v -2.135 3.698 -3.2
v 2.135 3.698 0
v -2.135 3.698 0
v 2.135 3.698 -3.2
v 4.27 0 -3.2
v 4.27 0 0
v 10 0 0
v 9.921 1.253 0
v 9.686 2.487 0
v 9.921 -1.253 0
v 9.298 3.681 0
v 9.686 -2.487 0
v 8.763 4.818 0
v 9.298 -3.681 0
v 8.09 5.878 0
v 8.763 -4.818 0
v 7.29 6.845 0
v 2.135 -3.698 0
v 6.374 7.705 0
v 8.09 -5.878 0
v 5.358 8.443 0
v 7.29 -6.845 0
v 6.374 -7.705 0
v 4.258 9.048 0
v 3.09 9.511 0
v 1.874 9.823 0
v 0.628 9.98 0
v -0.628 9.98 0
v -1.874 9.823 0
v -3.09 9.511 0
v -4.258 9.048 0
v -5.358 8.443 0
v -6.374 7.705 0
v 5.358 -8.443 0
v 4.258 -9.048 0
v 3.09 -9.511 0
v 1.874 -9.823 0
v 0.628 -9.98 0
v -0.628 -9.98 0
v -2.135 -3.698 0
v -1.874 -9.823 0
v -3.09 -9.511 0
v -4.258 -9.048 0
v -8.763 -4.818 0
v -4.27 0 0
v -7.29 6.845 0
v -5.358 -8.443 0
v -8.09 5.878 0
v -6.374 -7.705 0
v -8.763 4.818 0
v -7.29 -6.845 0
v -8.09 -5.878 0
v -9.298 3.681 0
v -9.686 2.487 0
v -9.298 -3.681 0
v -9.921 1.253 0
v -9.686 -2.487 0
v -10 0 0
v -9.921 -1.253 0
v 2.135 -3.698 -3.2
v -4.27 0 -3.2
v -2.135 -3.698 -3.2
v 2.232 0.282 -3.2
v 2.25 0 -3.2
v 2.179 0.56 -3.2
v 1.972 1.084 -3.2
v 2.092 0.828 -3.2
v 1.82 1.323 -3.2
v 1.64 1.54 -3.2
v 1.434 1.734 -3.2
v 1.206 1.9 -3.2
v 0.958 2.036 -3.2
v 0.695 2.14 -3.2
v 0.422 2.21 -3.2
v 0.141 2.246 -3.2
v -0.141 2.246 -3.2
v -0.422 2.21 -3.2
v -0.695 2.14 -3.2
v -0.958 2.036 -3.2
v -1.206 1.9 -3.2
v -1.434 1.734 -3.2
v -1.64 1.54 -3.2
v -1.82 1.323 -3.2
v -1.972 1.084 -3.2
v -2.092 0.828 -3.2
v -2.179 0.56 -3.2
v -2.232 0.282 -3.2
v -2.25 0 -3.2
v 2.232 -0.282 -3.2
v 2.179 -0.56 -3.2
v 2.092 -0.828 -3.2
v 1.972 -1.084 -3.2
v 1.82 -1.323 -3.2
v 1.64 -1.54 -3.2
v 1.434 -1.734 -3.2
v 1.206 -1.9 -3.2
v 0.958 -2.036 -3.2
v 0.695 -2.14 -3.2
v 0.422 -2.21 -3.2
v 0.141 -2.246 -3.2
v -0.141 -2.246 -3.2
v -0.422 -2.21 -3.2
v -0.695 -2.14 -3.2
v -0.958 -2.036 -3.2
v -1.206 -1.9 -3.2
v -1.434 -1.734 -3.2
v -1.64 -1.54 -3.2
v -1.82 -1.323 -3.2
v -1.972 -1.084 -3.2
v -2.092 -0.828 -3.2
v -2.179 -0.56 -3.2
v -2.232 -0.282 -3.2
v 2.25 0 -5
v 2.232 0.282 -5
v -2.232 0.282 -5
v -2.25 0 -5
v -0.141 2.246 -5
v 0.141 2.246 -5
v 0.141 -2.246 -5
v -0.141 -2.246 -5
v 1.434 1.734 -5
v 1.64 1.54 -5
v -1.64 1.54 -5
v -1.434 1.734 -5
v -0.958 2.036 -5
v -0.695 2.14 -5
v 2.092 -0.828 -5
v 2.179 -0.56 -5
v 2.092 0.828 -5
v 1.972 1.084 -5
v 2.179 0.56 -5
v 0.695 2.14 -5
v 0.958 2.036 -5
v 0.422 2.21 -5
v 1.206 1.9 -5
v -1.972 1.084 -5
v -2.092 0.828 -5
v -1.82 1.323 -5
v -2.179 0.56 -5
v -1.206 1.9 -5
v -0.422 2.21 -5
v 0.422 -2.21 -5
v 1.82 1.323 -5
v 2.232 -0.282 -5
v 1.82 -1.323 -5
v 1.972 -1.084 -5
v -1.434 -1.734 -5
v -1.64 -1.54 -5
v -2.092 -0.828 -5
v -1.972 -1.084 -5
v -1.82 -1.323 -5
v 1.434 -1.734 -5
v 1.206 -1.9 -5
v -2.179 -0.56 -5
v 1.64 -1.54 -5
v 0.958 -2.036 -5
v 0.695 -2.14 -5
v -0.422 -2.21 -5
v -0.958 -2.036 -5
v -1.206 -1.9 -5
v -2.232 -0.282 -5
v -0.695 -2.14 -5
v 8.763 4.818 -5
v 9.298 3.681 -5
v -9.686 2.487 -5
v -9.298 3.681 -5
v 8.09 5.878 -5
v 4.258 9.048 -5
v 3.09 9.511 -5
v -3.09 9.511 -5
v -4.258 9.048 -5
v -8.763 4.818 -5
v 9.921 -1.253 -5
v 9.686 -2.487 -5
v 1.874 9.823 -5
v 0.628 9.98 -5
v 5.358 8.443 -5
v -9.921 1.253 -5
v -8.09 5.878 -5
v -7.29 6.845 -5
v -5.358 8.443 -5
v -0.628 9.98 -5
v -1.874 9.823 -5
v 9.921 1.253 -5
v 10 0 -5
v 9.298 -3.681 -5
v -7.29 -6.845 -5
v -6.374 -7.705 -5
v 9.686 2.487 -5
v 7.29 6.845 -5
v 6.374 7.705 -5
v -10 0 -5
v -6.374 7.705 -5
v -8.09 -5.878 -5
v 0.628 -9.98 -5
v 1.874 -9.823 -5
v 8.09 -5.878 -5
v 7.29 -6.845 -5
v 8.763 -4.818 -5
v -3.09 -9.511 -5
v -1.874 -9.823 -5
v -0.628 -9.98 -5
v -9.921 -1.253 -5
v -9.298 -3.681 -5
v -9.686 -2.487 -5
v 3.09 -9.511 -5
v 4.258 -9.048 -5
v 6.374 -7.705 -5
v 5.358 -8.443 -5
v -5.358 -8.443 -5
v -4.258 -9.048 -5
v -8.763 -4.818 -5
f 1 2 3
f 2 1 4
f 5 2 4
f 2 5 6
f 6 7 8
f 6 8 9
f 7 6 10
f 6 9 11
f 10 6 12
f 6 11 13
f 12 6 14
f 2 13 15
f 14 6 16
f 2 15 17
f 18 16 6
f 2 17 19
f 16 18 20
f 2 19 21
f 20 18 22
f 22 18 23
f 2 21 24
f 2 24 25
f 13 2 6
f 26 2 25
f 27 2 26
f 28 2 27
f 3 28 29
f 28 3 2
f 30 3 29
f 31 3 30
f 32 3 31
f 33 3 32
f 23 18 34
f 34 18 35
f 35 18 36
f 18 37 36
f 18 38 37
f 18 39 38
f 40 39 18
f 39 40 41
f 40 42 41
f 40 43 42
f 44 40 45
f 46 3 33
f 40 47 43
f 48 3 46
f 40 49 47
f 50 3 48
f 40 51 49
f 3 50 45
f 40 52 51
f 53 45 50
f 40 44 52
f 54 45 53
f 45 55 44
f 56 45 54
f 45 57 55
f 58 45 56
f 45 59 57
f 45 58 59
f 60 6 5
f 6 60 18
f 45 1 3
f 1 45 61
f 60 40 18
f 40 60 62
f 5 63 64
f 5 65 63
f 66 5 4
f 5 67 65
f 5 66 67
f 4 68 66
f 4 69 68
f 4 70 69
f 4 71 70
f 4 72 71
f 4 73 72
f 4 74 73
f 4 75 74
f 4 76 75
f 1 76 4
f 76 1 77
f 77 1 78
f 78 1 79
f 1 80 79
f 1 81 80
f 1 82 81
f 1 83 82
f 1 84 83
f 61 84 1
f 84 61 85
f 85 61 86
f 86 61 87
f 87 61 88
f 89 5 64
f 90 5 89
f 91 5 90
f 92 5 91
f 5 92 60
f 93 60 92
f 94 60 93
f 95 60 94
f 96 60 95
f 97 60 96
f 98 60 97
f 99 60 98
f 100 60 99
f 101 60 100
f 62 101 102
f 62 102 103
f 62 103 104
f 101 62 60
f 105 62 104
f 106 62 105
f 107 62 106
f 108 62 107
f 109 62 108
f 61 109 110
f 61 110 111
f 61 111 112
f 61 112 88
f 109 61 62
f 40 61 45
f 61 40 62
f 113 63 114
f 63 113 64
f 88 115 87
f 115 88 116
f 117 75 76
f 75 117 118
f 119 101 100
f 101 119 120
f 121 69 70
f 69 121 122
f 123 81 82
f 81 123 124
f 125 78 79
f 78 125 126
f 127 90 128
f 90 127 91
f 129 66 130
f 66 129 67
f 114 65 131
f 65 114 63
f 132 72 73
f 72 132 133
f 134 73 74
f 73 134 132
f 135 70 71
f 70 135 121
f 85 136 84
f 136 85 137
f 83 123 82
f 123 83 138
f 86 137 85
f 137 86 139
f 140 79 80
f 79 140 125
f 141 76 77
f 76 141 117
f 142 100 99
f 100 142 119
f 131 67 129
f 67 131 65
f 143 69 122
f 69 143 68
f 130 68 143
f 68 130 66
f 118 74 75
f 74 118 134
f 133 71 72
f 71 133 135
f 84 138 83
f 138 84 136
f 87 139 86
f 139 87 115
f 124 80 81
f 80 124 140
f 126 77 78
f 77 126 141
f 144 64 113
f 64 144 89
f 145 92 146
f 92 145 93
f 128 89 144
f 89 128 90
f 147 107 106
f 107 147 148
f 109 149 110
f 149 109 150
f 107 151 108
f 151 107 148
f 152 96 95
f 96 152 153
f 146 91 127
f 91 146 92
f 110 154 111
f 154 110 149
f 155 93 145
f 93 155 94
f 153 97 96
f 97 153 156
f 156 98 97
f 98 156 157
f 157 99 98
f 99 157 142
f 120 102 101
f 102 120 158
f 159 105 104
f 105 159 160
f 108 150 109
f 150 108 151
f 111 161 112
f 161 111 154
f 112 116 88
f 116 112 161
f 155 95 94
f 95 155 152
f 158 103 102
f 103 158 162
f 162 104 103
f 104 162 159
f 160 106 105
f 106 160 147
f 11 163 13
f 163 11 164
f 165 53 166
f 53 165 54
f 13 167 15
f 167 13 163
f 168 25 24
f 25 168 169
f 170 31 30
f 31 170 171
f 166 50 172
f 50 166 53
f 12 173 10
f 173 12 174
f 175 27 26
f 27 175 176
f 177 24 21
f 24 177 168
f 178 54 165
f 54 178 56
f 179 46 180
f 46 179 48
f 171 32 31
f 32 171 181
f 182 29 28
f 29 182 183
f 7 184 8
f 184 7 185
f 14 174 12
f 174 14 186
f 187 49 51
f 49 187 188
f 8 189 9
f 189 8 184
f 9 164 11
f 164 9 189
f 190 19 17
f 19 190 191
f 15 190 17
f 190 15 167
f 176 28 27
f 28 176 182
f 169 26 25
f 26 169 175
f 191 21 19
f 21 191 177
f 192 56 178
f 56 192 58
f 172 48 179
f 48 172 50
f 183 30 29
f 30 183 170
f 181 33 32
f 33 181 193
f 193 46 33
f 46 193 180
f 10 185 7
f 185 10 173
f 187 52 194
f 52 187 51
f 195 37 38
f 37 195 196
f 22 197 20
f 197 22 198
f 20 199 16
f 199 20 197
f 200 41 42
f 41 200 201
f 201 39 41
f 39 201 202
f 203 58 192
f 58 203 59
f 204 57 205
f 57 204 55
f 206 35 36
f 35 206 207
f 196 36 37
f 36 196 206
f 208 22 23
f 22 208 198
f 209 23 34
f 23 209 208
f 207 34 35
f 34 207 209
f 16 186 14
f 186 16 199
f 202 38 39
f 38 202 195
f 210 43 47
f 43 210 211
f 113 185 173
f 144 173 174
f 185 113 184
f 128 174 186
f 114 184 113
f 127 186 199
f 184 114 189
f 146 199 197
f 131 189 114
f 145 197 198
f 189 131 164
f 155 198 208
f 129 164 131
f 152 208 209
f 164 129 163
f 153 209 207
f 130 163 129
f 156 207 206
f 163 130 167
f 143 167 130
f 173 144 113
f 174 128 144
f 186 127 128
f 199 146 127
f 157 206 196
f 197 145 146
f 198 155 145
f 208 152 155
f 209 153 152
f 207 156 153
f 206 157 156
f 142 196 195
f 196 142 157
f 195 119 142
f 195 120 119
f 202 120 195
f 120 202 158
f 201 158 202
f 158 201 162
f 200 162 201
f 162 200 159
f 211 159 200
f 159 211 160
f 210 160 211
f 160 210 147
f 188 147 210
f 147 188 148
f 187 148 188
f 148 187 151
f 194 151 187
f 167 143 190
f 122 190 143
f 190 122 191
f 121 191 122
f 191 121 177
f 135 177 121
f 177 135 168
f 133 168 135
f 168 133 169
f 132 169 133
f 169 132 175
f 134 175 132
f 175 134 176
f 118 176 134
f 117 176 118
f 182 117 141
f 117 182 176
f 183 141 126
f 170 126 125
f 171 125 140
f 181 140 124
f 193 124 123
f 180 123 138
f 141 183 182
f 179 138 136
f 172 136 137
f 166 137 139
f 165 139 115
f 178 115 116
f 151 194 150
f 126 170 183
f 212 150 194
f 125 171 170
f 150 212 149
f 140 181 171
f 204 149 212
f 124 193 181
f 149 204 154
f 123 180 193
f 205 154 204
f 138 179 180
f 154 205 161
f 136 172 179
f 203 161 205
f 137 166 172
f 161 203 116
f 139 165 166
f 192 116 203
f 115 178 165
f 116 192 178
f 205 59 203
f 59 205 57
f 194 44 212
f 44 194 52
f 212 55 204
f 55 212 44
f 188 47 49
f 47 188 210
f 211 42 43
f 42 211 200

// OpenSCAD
$fn = 50;


difference() {
	union() {
		translate(v = [0, 0, -5.0000000000]) {
			cylinder(h = 5.0000000000, r = 10.0000000000);
		}
	}
	union() {
		translate(v = [0, 0, 0]) {
			rotate(a = [0, 0, 0]) {
				difference() {
					union() {
						translate(v = [0, 0, -3.2000000000]) {
							linear_extrude(height = 3.2000000000) {
								polygon(points = [[4.2698000000, 0.0000000000], [2.1349000000, 3.6977552691], [-2.1349000000, 3.6977552691], [-4.2698000000, 0.0000000000], [-2.1349000000, -3.6977552691], [2.1349000000, -3.6977552691]]);
							}
						}
					}
					union();
				}
			}
		}
		#translate(v = [0, 0, -100.0000000000]) {
			cylinder(h = 200, r = 2.2500000000);
		}
	}
}
